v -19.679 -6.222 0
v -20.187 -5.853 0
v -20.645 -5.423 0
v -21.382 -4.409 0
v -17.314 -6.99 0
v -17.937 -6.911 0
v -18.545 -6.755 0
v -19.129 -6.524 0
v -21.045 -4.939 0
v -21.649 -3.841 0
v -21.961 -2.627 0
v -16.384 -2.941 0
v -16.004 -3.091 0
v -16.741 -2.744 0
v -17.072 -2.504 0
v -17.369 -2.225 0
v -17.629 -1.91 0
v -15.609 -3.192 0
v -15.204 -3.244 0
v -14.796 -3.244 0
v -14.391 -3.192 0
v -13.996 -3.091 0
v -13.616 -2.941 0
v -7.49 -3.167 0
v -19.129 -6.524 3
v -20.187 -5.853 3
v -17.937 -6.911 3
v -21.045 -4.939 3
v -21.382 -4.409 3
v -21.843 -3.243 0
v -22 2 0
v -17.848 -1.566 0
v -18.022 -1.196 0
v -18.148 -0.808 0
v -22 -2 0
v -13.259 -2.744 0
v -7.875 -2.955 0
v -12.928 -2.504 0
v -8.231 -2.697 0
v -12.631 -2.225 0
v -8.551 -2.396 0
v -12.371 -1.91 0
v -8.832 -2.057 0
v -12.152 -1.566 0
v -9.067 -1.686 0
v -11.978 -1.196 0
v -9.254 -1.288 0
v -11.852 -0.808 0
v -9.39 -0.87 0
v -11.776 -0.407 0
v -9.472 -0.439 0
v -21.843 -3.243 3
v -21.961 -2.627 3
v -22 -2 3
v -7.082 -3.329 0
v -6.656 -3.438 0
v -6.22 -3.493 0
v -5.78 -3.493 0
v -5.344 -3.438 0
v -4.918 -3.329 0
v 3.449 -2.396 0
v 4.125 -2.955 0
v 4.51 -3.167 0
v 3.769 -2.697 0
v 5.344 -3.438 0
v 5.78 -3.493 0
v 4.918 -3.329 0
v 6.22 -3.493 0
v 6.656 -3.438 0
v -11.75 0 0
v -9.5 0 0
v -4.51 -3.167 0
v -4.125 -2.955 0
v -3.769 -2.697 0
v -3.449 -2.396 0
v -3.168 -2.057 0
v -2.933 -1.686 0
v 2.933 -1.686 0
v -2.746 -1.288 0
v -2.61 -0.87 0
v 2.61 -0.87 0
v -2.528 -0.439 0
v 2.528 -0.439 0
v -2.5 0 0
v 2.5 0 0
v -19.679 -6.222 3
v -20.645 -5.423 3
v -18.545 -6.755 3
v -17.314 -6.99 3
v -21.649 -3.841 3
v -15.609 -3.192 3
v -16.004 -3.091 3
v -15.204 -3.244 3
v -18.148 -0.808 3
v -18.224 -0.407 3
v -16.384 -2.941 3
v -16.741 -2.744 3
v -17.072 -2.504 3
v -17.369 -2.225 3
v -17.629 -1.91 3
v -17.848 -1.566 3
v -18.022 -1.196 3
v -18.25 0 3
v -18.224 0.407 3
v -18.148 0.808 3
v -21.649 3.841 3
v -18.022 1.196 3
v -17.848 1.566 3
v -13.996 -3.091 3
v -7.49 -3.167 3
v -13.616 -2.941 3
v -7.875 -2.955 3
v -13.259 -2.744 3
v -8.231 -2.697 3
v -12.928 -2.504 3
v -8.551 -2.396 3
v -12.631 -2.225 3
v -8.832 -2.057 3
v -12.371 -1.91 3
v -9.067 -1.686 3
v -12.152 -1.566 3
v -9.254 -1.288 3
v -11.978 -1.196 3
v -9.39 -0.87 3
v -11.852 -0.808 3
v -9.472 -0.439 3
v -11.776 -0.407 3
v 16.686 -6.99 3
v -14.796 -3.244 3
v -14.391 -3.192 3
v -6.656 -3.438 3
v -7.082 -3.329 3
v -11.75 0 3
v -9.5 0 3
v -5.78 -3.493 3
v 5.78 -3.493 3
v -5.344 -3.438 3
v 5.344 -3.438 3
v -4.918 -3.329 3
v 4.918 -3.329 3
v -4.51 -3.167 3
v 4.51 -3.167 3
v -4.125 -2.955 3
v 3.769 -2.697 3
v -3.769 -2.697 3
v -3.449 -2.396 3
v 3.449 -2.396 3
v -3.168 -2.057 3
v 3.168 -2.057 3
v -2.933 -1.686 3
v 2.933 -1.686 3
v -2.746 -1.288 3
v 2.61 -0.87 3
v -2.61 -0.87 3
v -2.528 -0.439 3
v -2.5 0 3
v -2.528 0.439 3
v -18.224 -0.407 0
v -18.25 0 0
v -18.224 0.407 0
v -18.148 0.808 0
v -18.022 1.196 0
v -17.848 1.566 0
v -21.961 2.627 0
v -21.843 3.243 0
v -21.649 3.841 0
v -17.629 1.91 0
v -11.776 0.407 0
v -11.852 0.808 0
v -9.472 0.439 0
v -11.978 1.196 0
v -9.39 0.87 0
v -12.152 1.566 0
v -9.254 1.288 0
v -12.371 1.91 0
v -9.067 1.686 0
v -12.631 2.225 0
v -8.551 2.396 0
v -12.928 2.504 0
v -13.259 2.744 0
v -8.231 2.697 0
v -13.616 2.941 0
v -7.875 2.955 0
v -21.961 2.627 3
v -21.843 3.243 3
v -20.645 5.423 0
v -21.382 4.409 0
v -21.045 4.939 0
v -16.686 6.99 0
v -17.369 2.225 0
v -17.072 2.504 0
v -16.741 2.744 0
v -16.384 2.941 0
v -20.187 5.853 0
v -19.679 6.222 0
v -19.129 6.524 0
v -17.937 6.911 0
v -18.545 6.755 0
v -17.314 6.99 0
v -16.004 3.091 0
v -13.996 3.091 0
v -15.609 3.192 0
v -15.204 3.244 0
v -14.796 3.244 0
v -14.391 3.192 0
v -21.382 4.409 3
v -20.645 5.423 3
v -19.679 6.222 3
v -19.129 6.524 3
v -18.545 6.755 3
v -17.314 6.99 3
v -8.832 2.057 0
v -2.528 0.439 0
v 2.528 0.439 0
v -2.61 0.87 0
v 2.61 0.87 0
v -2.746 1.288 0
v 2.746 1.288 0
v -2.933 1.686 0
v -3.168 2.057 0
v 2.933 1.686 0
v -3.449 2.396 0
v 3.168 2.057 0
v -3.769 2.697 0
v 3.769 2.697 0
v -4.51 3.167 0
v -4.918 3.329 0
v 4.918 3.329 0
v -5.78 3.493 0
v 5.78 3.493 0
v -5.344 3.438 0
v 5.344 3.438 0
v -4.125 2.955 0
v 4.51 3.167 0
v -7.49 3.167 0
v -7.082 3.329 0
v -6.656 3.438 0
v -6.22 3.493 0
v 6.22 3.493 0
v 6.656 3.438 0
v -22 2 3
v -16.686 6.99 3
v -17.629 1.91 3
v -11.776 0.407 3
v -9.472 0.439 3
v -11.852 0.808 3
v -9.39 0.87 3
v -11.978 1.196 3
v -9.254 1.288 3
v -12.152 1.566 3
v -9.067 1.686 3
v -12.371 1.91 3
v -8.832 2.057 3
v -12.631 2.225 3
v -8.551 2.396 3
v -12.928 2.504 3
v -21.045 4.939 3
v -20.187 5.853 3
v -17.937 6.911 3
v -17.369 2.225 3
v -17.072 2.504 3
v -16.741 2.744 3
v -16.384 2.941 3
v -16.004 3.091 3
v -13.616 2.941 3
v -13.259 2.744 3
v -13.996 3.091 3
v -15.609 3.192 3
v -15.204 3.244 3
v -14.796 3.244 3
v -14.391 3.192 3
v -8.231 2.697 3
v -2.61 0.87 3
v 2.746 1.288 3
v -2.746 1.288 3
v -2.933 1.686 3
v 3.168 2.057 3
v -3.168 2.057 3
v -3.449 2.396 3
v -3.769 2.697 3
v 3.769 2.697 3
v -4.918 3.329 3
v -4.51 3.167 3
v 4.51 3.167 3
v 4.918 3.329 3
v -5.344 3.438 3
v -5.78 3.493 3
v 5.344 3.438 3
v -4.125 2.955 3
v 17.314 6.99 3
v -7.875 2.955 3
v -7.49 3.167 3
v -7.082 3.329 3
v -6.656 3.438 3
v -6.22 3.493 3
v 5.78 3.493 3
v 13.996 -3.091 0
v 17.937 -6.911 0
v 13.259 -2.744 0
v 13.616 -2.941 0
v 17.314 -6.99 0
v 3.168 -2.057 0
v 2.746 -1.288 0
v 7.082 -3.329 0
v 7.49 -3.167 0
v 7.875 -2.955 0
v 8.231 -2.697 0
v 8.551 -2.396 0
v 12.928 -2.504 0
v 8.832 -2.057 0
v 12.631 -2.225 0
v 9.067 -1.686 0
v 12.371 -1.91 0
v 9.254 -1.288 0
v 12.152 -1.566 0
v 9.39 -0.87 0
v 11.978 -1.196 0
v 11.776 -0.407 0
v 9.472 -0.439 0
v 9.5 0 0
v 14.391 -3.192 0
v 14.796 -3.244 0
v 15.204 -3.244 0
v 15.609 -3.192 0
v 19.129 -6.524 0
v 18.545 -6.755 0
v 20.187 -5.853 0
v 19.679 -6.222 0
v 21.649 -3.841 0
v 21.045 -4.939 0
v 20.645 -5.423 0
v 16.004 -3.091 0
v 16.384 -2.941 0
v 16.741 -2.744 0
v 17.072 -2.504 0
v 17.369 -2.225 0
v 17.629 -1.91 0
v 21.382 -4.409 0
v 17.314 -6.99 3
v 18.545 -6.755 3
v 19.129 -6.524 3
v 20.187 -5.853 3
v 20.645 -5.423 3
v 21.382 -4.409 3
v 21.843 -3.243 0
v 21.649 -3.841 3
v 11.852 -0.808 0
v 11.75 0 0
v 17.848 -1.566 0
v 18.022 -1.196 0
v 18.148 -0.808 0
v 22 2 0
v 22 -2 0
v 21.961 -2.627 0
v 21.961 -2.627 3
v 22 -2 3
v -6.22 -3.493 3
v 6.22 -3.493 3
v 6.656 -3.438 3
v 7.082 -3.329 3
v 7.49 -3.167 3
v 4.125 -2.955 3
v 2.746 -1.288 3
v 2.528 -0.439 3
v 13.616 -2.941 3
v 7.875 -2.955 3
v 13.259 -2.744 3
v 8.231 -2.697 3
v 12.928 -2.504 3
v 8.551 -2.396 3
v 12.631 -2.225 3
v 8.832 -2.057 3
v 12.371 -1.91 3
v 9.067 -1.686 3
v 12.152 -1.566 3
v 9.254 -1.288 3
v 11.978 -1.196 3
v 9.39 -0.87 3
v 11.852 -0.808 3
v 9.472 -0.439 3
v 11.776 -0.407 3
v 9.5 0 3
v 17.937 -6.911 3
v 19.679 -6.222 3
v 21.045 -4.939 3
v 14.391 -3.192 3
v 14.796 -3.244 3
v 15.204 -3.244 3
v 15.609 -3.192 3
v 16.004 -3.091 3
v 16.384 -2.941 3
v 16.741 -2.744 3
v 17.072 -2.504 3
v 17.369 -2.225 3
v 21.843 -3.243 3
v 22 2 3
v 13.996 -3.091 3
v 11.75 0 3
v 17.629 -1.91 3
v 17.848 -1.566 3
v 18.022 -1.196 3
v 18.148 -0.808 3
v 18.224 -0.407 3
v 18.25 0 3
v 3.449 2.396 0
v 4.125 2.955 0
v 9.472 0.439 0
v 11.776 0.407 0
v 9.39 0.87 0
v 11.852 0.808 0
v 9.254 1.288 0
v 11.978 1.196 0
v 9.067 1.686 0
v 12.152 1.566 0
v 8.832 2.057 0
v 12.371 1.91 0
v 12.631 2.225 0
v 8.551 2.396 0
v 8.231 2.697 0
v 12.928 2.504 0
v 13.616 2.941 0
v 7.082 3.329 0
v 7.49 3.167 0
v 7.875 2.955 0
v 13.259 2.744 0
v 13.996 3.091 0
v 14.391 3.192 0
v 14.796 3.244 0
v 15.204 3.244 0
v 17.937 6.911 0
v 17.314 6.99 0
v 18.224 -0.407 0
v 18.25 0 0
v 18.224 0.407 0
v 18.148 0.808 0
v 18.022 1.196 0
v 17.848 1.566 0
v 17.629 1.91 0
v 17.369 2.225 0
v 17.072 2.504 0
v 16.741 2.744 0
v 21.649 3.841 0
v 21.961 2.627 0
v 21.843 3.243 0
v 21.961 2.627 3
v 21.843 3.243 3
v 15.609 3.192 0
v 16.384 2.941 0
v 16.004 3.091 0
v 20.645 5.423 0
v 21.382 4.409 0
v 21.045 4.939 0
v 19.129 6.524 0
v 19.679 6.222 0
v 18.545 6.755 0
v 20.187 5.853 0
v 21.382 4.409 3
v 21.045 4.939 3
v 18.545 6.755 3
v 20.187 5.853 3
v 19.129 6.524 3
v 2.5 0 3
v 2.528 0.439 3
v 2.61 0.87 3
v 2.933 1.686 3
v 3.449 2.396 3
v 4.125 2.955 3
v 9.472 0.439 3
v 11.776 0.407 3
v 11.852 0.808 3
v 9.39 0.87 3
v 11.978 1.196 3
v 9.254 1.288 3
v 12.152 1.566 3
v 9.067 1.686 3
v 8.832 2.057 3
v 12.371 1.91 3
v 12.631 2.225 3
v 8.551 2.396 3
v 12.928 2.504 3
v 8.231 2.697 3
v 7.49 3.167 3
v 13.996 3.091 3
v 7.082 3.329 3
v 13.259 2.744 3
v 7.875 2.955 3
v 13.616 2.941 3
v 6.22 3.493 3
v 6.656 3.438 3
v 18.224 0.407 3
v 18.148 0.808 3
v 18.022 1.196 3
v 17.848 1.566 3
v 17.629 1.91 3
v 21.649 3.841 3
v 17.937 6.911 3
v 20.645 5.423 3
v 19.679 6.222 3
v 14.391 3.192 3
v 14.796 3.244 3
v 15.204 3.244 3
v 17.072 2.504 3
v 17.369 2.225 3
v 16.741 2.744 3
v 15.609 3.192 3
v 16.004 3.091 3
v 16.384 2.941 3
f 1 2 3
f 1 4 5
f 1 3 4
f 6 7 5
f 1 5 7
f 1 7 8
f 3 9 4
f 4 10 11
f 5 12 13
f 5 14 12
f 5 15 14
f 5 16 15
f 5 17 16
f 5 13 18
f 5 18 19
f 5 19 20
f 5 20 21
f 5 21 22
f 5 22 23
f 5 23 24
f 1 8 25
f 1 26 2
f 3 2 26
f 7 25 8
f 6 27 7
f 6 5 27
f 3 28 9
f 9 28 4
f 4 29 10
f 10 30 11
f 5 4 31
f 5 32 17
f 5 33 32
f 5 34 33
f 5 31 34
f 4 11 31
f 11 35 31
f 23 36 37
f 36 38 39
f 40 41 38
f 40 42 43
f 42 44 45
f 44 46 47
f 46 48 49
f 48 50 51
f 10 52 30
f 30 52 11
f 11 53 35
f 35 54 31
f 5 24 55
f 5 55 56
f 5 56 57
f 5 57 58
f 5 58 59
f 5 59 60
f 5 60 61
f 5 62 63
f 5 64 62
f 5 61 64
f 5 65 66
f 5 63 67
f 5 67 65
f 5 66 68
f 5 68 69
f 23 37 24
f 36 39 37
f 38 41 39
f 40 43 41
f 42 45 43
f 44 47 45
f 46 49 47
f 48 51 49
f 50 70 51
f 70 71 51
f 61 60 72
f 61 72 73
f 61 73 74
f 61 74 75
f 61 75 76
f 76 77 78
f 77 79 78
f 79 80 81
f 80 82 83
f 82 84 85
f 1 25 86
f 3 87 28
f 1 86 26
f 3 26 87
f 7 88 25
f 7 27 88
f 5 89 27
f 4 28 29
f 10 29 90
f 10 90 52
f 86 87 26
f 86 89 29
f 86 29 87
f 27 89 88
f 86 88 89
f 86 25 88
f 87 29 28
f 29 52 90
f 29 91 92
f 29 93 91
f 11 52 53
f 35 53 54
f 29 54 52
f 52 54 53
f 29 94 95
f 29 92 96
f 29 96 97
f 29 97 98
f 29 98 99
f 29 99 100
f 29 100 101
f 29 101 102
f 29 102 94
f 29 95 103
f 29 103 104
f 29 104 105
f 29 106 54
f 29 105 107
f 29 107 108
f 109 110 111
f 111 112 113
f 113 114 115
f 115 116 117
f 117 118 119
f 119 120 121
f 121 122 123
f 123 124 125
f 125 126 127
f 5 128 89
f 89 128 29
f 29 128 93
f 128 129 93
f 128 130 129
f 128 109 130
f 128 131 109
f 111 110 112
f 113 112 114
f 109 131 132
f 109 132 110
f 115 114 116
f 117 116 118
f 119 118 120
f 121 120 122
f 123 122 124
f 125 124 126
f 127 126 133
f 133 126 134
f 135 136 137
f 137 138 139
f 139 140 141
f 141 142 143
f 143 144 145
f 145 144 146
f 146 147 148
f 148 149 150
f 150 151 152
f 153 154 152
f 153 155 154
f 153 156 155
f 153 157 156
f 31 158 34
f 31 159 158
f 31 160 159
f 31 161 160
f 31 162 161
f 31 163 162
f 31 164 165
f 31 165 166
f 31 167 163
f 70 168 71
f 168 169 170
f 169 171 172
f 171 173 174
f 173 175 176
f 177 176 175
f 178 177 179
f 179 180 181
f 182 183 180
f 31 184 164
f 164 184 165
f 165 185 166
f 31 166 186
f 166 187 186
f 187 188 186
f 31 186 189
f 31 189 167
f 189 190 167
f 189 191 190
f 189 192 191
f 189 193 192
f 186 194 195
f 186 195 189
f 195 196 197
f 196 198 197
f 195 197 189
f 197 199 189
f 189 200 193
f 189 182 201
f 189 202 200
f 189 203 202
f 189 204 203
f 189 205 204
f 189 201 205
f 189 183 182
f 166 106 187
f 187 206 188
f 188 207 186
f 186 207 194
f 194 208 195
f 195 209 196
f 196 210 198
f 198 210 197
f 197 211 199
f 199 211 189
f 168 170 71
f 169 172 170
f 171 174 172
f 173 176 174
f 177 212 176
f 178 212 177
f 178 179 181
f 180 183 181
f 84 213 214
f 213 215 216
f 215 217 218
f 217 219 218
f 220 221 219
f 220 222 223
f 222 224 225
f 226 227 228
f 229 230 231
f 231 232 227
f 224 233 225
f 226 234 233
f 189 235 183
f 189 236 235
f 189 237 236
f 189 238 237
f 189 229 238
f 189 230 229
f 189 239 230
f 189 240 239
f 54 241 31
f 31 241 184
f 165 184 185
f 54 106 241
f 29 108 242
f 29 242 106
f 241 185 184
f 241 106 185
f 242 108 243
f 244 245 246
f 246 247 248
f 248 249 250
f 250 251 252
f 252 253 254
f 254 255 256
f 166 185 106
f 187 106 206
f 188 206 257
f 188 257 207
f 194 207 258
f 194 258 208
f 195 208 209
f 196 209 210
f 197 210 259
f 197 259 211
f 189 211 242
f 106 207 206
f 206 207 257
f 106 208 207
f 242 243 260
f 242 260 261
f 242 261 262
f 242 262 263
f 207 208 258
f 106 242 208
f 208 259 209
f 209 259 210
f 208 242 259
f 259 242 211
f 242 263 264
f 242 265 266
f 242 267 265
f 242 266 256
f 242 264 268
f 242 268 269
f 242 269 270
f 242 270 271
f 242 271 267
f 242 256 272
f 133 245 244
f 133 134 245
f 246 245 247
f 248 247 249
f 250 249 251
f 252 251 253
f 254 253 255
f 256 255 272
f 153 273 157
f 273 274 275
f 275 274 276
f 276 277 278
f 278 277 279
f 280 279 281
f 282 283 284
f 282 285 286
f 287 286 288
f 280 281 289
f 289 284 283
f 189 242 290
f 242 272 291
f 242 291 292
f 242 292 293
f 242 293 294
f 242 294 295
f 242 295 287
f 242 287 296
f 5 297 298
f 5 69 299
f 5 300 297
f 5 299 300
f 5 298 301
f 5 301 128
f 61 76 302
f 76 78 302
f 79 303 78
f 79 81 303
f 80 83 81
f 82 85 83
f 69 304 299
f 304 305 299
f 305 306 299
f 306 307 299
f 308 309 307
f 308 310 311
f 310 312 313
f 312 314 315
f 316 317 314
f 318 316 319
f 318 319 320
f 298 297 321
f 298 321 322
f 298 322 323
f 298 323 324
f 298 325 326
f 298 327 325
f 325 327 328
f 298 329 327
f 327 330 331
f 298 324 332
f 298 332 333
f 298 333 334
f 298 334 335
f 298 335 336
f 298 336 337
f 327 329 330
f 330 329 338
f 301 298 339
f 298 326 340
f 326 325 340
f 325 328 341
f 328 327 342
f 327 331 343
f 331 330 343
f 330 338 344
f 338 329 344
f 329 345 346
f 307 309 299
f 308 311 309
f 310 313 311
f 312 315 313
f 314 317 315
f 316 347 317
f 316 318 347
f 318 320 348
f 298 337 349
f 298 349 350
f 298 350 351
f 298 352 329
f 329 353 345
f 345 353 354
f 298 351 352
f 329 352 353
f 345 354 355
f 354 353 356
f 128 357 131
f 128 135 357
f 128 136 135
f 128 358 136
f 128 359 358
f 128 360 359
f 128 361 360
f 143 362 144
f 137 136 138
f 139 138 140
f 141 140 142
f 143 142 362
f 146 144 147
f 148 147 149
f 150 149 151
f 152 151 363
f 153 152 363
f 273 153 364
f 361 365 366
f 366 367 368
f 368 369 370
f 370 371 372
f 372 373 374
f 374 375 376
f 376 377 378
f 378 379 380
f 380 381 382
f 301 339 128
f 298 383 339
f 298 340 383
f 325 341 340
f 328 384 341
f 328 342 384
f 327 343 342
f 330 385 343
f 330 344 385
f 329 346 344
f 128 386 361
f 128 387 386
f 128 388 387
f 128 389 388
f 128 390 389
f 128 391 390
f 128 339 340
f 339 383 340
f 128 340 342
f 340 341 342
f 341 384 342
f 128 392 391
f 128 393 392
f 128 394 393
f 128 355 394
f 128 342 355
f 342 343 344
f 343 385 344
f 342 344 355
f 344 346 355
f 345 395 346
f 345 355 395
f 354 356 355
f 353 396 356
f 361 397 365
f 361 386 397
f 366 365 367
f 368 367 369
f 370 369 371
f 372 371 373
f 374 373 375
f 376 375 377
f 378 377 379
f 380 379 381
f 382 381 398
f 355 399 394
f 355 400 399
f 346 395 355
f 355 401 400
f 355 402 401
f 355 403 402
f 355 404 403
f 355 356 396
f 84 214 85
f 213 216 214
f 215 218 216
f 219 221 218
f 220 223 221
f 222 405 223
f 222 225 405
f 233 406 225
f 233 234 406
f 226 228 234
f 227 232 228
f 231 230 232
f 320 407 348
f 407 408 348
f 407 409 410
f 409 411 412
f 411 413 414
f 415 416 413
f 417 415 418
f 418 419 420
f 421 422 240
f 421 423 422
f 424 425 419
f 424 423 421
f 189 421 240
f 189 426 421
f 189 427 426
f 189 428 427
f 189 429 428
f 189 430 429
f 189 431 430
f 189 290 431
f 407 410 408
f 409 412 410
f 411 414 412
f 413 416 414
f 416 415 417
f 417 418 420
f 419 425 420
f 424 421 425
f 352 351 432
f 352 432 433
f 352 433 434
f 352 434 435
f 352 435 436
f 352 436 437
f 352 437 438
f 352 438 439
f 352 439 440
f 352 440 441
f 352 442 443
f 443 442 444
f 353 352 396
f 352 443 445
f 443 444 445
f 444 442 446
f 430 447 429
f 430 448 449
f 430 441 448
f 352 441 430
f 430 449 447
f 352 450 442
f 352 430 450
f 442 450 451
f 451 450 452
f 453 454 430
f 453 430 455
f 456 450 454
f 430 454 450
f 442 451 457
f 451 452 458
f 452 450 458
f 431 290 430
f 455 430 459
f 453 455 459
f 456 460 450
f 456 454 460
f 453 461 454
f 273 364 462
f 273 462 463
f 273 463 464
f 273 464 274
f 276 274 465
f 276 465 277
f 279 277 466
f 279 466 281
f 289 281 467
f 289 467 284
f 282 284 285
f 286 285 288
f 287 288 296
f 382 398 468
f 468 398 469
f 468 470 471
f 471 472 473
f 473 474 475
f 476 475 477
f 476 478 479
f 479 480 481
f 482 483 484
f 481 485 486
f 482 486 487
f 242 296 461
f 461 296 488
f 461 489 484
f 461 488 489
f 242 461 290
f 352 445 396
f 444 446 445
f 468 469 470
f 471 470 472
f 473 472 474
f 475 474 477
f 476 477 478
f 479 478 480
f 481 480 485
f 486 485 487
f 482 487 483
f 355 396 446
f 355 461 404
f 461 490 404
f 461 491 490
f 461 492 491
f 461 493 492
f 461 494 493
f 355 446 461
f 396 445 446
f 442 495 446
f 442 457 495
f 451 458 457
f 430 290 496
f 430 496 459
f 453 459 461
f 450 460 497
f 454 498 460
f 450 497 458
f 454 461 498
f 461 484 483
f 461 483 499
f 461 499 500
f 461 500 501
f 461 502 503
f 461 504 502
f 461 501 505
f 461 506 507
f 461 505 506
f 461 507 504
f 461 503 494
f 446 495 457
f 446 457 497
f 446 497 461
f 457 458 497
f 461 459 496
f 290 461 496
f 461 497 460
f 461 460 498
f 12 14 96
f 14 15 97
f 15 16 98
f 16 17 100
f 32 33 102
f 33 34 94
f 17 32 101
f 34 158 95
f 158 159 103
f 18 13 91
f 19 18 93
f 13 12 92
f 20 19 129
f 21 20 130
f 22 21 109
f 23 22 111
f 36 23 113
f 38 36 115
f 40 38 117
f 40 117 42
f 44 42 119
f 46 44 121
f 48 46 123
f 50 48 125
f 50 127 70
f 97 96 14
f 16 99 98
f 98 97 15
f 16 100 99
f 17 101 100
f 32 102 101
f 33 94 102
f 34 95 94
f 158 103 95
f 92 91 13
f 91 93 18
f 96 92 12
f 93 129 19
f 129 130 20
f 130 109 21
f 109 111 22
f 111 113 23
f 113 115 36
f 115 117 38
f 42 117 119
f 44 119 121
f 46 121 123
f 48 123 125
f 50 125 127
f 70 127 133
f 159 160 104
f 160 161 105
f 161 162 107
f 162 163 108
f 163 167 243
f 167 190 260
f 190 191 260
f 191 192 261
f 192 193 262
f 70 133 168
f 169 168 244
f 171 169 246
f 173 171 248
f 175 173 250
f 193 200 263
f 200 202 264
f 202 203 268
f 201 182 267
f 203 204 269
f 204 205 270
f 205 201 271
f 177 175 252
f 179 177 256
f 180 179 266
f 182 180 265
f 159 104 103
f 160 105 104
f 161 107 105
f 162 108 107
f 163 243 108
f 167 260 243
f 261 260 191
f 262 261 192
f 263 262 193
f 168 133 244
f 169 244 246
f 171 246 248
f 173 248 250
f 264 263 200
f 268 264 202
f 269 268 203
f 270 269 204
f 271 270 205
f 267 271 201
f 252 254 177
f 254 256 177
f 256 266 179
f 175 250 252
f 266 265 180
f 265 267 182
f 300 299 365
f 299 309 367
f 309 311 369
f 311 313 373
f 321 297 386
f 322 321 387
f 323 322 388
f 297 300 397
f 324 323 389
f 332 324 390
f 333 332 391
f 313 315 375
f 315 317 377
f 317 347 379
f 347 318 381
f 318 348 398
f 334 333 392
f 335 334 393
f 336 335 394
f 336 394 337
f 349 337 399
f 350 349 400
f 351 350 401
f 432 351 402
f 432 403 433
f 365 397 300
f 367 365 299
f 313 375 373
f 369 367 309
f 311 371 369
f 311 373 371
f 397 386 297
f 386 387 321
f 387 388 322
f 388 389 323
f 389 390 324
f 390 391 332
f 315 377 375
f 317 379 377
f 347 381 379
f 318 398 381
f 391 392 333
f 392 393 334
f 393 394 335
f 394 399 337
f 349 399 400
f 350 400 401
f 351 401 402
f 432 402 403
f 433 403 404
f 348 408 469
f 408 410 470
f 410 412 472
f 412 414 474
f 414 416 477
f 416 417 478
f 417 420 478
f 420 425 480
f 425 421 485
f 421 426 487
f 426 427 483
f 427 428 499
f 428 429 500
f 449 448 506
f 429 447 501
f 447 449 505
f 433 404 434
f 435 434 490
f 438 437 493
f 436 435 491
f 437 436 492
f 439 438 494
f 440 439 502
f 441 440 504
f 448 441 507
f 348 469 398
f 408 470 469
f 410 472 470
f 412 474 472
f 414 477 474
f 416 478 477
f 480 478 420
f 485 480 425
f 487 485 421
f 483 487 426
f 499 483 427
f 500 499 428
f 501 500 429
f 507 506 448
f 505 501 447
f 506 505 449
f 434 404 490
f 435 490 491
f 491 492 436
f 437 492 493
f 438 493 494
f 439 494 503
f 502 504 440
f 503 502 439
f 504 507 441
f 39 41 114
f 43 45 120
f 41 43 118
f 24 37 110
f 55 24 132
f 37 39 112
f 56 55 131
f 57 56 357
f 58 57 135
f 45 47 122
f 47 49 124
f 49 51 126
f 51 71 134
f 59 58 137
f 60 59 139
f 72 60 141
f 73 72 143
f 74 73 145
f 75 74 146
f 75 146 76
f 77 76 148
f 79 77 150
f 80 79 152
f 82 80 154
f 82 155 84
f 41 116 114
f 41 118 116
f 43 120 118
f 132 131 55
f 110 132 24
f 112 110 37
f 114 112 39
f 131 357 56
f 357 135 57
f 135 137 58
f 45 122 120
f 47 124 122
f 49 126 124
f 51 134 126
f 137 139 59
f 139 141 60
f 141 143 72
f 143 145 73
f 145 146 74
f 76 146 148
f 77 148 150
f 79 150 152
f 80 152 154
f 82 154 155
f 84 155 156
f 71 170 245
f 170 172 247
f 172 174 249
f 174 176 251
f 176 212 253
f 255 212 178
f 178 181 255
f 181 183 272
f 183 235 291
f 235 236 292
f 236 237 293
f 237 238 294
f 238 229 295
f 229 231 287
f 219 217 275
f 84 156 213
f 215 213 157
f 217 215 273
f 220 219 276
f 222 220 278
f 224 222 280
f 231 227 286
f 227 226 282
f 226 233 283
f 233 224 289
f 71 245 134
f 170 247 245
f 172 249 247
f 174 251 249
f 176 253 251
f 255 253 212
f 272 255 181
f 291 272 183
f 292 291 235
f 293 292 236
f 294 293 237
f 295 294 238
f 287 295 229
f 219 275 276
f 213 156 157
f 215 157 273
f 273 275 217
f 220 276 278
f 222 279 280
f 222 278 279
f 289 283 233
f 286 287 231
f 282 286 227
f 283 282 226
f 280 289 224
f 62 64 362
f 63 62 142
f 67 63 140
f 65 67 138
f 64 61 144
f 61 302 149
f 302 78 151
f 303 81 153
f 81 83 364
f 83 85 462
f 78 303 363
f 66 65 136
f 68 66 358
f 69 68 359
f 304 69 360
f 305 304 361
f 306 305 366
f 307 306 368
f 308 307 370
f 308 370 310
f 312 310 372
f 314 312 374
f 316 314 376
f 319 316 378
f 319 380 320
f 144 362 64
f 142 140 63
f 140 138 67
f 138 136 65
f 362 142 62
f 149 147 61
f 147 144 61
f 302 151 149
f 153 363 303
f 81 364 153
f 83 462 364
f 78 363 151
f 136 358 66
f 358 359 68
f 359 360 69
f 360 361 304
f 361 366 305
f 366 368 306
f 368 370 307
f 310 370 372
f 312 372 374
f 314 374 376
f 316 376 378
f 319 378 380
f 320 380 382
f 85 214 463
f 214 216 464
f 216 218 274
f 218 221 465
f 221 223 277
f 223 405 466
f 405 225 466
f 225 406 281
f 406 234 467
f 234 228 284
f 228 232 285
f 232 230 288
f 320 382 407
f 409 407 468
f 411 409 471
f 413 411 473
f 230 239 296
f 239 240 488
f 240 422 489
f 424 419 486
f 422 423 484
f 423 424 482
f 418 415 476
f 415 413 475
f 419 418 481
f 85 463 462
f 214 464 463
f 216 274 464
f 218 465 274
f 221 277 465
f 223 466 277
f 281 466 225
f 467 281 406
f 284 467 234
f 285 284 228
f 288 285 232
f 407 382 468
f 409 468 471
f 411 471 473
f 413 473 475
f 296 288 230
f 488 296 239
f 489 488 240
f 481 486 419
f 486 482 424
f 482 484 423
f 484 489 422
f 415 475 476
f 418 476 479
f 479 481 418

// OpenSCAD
$fn = 50;

difference() {
	union() {
		hull() {
			translate(v = [-17.0, 2.0, 0]) {
				cylinder(h = 3, r = 5);
			}
			translate(v = [17.0, 2.0, 0]) {
				cylinder(h = 3, r = 5);
			}
			translate(v = [-17.0, -2.0, 0]) {
				cylinder(h = 3, r = 5);
			}
			translate(v = [17.0, -2.0, 0]) {
				cylinder(h = 3, r = 5);
			}
		}
	}
	union() {
		translate(v = [-15.0, 0.0, 0]) {
			cylinder(h = 3, r = 3.25);
		}
		translate(v = [15.0, 0.0, 0]) {
			cylinder(h = 3, r = 3.25);
		}
		translate(v = [-6.0, 0, 0.0]) {
			cylinder(h = 3, r = 3.5);
		}
		translate(v = [6.0, 0, 0.0]) {
			cylinder(h = 3, r = 3.5);
		}
	}
}
